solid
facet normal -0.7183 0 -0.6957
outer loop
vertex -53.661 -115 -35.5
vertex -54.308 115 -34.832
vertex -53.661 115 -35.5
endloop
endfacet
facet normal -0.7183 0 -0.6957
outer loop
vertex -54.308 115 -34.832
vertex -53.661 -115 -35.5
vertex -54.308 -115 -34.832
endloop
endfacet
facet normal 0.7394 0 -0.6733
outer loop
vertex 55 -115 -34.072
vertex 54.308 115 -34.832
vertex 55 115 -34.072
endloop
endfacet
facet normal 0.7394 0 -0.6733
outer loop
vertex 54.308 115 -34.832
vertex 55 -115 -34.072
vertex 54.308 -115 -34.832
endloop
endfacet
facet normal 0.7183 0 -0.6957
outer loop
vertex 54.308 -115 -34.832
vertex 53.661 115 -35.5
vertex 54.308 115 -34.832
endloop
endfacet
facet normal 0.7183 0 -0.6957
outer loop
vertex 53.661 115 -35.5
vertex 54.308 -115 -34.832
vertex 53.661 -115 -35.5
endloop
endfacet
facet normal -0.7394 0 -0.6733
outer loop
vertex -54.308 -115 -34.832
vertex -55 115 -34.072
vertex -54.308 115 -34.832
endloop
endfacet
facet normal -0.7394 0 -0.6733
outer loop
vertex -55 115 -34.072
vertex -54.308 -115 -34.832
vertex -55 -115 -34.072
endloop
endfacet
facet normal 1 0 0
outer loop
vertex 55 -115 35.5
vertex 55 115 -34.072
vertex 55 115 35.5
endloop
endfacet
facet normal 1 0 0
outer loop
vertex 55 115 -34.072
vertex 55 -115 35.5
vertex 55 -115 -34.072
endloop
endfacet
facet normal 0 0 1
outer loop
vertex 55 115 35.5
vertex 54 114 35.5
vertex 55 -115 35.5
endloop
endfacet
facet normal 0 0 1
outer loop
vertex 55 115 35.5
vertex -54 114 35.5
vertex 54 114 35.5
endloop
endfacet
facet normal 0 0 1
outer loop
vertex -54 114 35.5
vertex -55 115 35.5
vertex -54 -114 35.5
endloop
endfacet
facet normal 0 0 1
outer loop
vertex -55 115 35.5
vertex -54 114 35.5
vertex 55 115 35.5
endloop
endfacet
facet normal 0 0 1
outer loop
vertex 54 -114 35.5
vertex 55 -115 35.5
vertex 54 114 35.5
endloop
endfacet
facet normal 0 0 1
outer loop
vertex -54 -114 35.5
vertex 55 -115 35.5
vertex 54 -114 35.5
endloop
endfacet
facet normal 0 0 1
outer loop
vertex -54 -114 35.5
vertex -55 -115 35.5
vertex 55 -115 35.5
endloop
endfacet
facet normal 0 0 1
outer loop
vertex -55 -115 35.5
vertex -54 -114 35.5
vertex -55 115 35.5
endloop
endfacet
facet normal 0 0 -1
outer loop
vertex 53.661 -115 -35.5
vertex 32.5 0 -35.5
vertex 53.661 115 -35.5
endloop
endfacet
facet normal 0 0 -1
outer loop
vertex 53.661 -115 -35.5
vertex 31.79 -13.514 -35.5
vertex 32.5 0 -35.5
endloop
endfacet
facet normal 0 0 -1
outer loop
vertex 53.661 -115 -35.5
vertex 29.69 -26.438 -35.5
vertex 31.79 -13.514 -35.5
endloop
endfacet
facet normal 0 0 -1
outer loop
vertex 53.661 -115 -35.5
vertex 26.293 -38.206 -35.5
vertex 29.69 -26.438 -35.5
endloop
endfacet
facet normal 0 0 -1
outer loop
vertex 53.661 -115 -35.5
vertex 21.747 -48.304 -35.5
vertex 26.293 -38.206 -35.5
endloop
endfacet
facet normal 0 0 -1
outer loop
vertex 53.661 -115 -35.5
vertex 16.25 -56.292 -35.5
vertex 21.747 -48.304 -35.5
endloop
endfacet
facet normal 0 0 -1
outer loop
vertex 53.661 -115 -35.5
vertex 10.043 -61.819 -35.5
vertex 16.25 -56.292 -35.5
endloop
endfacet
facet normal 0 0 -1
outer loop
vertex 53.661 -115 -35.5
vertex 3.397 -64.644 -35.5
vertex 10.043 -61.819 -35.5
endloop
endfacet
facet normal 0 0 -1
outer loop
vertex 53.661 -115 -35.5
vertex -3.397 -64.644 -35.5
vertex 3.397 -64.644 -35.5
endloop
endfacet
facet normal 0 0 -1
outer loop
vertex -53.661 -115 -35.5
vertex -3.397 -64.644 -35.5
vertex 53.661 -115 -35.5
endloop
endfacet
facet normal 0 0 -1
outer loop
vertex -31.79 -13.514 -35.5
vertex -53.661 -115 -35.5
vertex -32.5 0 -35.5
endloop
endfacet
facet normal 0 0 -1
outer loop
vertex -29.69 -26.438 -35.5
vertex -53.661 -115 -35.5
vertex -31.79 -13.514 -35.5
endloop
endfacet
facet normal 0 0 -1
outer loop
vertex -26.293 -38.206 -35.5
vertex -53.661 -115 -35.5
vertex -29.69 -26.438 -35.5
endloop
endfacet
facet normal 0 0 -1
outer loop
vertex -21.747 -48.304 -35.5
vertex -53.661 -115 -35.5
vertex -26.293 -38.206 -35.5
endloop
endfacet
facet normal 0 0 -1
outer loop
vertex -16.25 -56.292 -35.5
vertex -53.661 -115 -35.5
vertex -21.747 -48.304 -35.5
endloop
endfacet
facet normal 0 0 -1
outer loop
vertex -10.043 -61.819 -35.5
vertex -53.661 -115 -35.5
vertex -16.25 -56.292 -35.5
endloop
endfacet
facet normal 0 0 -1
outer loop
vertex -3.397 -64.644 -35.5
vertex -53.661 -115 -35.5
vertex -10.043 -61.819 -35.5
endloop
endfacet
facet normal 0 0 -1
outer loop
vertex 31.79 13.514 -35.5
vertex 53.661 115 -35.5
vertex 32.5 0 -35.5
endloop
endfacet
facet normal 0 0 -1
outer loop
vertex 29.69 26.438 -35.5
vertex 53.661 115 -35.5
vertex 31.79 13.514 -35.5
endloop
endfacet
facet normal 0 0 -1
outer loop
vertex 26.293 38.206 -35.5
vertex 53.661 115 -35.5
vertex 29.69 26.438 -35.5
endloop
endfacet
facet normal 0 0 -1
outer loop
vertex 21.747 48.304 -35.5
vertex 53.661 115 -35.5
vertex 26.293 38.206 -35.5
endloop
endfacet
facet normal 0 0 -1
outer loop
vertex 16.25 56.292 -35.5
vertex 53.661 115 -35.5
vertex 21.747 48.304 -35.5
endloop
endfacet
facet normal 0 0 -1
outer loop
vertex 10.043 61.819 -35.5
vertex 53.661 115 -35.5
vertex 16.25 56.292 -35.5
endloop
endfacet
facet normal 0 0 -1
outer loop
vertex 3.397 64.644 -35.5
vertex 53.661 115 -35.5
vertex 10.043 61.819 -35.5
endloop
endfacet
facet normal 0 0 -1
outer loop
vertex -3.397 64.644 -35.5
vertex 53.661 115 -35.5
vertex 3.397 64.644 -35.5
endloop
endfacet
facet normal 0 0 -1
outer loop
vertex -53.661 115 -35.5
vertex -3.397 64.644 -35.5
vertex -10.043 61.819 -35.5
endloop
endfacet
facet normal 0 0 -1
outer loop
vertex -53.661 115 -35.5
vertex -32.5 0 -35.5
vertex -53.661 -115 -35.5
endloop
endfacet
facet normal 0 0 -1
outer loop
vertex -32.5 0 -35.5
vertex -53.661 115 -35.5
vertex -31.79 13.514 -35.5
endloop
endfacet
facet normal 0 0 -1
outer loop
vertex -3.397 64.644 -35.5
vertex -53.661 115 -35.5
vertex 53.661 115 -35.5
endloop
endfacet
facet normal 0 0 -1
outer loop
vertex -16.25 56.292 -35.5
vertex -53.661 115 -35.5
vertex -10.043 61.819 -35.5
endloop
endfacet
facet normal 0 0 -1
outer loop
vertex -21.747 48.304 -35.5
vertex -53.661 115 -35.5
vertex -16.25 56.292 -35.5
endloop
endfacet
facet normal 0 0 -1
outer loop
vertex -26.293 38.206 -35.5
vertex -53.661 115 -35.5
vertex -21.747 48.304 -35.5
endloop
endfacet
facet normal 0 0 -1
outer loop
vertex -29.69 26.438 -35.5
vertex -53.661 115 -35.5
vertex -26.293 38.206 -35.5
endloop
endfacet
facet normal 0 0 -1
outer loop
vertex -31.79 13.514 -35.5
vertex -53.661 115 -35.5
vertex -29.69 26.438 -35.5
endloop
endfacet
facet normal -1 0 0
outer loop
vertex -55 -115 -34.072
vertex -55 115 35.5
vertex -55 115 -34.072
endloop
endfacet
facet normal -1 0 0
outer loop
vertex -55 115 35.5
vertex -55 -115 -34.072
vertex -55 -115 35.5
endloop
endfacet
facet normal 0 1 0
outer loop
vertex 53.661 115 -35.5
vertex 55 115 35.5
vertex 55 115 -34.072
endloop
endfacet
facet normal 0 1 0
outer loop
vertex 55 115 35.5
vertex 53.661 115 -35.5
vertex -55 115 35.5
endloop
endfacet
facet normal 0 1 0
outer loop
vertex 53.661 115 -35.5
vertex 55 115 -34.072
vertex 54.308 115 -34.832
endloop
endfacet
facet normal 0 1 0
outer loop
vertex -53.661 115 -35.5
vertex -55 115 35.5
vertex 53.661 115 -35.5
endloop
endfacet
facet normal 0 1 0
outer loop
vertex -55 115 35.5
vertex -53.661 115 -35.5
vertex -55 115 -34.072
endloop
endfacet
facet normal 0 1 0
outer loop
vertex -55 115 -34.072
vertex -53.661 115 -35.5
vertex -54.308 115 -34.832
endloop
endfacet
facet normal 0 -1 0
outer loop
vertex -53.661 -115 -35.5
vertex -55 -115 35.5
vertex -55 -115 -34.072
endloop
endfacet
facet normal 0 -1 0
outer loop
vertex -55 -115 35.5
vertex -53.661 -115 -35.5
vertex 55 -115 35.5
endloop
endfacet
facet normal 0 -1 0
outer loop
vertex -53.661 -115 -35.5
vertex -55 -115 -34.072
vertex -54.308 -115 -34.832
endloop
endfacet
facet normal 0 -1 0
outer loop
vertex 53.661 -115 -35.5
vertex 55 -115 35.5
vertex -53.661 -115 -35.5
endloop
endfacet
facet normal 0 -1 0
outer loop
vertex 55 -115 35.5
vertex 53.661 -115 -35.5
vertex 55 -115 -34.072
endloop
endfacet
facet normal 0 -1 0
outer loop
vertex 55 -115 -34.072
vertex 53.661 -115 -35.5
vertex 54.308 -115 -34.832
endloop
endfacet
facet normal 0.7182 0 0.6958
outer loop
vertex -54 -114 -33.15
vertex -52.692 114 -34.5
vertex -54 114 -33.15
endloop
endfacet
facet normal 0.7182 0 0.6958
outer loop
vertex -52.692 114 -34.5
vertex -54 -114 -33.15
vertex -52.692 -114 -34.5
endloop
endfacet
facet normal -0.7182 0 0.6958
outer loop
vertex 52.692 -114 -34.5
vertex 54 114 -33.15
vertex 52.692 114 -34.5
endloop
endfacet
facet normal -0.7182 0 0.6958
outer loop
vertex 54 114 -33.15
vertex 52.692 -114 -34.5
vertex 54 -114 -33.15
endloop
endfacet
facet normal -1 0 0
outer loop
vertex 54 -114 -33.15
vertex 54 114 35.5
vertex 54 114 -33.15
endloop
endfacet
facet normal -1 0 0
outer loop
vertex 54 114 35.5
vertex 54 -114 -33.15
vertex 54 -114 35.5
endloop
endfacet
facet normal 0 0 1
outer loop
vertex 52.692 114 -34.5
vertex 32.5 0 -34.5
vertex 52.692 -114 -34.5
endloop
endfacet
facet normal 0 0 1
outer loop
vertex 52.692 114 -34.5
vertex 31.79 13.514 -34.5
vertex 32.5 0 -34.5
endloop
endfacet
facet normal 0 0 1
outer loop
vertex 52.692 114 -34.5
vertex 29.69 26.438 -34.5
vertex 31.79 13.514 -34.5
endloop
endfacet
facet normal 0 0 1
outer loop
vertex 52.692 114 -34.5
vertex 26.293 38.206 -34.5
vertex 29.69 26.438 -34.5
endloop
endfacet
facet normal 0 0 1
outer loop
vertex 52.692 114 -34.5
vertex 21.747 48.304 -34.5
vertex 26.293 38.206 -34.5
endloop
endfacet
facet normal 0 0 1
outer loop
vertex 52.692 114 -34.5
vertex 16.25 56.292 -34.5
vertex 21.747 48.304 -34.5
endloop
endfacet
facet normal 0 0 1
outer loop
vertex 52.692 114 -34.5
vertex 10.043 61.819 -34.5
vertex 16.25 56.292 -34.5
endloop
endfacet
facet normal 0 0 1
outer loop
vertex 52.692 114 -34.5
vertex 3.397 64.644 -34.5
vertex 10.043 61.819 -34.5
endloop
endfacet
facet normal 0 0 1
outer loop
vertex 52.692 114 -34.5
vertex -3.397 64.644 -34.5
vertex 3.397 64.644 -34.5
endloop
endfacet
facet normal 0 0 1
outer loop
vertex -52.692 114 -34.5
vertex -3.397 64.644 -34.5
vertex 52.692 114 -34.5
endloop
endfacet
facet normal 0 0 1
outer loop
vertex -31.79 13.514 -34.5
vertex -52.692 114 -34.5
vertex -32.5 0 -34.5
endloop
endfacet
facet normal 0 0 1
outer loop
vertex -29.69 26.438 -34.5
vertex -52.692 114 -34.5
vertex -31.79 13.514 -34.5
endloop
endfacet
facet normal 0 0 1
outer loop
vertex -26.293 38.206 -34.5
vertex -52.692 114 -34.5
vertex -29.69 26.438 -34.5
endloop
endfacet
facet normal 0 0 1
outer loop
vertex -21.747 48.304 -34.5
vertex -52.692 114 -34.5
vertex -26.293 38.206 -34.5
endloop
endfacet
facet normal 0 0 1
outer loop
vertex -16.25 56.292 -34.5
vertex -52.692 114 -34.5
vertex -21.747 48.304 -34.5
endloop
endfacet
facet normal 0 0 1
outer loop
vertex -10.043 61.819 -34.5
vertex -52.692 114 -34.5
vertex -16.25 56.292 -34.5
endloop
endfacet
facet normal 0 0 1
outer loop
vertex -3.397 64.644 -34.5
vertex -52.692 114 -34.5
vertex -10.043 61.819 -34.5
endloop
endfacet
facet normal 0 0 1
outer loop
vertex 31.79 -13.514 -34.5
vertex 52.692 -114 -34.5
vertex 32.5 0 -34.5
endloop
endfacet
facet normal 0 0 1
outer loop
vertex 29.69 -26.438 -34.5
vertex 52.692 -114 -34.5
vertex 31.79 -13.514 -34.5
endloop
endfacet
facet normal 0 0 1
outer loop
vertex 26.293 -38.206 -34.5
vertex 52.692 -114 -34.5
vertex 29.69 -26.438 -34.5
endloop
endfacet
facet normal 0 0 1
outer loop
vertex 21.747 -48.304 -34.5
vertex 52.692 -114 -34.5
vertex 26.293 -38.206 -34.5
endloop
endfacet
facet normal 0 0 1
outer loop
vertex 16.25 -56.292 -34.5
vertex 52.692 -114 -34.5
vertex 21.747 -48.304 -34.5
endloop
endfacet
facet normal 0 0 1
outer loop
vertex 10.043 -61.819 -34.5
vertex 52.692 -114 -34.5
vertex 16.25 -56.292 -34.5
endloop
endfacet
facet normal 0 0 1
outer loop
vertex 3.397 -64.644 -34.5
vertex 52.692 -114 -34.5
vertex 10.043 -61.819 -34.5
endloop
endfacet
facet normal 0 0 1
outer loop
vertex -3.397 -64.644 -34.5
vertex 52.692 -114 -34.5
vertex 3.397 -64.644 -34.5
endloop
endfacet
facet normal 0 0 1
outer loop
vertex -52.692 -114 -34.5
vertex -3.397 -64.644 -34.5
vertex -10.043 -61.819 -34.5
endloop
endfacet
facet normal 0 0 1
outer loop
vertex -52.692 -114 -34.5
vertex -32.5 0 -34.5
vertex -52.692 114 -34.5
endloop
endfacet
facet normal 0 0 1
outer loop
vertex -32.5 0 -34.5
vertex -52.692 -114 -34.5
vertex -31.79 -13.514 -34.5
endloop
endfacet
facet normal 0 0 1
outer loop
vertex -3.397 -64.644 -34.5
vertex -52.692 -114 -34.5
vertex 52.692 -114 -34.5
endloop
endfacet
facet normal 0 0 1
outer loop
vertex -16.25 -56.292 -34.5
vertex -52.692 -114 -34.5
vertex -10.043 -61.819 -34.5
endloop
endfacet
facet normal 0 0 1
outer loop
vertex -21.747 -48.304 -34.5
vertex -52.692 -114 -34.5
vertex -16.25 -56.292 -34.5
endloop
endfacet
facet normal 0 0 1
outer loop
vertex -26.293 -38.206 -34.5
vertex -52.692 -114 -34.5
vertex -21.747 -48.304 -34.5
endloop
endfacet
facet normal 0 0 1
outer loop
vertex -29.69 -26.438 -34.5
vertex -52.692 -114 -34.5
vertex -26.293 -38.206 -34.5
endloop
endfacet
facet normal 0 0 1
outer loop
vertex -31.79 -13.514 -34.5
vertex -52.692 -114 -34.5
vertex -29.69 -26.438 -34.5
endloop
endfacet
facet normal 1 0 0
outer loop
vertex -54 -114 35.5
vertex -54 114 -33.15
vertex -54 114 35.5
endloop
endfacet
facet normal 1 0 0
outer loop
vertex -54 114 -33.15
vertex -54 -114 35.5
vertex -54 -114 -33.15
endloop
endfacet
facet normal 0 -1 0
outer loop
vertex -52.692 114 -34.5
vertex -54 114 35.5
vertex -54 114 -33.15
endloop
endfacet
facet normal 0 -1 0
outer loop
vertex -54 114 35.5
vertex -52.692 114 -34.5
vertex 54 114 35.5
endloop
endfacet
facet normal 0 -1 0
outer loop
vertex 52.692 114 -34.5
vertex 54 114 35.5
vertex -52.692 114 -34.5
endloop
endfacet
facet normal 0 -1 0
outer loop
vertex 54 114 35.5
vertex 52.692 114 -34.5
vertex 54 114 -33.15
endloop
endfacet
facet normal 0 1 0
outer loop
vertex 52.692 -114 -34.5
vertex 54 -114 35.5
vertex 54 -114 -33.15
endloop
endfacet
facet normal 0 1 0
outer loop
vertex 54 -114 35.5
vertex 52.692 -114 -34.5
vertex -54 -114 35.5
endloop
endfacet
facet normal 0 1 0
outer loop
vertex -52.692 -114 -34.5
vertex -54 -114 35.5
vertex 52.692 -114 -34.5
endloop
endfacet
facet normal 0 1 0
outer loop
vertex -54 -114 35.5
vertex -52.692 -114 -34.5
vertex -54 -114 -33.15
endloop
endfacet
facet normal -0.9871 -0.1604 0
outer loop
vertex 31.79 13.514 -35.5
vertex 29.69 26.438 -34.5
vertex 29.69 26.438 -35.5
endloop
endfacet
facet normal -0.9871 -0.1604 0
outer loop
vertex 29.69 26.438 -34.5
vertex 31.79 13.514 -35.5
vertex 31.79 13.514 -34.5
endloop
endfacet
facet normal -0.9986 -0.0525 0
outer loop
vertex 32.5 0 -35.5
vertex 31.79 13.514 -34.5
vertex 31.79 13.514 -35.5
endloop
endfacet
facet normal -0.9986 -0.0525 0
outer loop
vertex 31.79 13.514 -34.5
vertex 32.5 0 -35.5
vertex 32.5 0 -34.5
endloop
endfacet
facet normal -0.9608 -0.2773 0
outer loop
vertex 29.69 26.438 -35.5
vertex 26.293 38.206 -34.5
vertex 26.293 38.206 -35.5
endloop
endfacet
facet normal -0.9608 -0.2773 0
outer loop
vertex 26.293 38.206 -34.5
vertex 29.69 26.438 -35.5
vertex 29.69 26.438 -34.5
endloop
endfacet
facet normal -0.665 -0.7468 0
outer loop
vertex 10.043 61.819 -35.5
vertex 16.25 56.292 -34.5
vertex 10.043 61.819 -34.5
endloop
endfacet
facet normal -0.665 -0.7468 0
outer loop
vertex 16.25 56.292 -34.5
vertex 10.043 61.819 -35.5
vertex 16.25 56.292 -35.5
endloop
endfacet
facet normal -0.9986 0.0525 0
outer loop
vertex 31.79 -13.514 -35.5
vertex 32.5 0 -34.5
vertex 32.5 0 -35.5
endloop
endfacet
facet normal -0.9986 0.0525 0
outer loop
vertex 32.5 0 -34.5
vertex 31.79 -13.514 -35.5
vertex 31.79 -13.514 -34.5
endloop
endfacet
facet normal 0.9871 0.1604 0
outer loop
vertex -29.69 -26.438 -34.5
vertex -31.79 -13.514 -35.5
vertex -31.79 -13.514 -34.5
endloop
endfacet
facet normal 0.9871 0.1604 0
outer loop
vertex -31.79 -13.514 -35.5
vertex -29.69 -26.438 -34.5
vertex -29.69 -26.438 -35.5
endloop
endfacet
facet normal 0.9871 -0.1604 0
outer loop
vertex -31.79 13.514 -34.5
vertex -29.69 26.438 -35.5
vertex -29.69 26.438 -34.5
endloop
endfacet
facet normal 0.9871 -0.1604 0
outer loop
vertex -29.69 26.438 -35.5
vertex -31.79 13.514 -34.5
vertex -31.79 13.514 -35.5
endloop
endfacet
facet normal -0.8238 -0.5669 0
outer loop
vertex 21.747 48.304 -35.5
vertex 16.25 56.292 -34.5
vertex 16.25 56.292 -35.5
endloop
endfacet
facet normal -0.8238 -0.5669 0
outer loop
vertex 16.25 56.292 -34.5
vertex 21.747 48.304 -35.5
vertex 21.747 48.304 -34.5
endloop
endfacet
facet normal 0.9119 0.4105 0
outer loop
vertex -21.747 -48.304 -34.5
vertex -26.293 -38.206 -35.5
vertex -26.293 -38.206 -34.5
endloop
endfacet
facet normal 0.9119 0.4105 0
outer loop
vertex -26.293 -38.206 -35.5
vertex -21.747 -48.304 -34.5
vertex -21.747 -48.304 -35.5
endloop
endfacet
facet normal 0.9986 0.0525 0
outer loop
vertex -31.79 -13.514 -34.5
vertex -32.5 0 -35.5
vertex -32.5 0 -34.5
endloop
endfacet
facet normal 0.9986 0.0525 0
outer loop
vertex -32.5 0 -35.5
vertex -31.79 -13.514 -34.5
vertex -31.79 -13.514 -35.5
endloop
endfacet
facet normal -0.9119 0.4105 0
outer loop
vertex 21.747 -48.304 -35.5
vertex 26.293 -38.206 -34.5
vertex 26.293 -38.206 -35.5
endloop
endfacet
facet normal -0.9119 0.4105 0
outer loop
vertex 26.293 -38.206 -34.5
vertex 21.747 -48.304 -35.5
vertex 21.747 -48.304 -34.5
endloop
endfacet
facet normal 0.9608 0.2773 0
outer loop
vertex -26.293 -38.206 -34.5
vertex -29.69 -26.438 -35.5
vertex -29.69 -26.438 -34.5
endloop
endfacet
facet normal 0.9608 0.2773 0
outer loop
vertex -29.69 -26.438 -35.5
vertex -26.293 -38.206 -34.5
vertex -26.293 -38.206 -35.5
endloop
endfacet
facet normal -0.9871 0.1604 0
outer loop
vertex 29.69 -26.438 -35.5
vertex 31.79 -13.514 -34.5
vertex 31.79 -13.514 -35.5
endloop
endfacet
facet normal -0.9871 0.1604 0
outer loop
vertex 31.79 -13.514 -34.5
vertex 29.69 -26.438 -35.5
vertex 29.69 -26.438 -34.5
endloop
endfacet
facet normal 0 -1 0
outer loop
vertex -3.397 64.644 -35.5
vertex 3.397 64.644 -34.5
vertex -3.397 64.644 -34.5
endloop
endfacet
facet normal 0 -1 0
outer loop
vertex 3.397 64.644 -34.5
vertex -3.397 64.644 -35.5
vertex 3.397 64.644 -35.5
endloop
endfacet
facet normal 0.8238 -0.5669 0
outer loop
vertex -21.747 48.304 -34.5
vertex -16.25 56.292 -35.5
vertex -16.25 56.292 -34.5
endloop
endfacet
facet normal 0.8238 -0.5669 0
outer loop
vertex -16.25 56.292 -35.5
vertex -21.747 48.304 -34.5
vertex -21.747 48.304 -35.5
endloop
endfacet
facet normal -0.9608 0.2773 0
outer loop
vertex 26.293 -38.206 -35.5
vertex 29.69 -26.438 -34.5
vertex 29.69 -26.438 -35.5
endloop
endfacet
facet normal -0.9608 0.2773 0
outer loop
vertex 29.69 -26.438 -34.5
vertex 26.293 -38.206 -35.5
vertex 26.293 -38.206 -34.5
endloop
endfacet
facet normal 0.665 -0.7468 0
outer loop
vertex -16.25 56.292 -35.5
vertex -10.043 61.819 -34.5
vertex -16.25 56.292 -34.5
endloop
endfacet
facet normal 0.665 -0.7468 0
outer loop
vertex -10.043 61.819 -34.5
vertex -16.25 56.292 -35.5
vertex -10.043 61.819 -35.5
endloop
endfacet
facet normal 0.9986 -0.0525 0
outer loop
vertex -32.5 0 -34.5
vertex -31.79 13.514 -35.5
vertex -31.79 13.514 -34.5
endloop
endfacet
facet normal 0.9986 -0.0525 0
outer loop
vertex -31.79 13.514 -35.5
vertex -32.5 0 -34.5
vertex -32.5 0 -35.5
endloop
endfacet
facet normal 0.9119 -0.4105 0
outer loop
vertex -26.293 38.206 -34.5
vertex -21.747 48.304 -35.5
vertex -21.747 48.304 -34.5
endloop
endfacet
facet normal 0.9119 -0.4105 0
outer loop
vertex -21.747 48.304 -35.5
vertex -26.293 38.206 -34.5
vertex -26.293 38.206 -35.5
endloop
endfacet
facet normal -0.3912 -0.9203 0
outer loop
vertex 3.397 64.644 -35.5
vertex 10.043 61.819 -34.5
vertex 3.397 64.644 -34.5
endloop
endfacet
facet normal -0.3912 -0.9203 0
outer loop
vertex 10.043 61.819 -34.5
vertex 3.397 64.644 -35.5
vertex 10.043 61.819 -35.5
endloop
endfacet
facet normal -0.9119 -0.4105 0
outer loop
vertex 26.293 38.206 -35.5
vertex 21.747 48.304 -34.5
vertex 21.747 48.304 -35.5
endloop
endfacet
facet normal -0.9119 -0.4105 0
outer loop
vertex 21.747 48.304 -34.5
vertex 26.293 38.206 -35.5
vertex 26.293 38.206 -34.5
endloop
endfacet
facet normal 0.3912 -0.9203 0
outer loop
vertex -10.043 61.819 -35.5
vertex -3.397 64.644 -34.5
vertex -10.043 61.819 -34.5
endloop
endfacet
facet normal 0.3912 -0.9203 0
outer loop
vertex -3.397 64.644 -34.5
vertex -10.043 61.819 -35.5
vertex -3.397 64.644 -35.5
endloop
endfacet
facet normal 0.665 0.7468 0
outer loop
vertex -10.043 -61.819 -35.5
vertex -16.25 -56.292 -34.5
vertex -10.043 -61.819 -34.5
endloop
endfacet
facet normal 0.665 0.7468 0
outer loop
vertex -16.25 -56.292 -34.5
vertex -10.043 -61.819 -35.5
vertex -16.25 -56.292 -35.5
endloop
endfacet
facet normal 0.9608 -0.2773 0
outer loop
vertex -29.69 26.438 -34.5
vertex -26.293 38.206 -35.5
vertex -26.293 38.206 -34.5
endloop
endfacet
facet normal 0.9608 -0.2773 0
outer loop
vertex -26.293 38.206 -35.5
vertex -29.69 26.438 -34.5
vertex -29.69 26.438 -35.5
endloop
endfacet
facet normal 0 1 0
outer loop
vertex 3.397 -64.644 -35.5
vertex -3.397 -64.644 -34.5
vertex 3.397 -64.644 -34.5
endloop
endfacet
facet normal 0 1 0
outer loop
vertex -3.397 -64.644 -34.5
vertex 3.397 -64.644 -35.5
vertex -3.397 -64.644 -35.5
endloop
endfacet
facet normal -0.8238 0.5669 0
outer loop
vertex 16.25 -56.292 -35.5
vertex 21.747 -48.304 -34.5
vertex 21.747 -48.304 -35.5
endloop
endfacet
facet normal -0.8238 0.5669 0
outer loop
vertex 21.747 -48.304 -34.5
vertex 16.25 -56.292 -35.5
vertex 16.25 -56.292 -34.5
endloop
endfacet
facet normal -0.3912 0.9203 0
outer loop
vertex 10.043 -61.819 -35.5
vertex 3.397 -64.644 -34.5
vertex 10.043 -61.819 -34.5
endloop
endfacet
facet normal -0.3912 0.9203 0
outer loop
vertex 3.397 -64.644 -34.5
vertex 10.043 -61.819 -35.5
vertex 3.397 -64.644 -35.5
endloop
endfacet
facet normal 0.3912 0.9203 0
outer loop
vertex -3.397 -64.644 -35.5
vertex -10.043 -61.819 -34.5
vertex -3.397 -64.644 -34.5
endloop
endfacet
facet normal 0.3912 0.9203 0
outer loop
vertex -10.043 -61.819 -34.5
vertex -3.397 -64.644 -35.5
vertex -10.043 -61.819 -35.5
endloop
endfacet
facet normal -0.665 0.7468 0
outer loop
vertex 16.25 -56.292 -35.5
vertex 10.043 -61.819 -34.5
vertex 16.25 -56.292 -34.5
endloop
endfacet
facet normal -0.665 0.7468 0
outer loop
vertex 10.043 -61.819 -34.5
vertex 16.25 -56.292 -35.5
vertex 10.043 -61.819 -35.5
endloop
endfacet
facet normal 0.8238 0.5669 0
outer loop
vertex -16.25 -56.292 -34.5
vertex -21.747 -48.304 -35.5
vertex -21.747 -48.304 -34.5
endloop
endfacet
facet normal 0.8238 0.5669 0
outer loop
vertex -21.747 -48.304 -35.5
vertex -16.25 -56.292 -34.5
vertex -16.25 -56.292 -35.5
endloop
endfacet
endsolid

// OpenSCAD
height=71;
depth=110;
len=230;
thick=2;
cw=20;
module smooth_box() {
  cutout_d=65;
  cutout_thick=20;
  difference() {
    box(thick=0);
    scale([1, 2, 1])
      translate([0, 0, -cutout_thick*2])
        cylinder(h=cutout_thick, d=cutout_d);
    box(thick=thick);
  }
}

module box(thick) {
  cutout_d=65;
  cutout_thick=20;
  translate([0, 0, thick]) {
    difference() {
      cube([depth-thick, len-thick, height+thick], center=true);
      y_cylinder();
    }
  }
}

module y_cylinder() {
  cd=155;
  cyl_thick=6;
  difference() {
    translate([0, 0, -height/2+cd/3])
      rotate([90, 90, 0])
        cylinder(len+2, d=cd, center=true, $fn=200);
    translate([0, 0, -height/2+cd/3])
      rotate([90, 90, 0])
        cylinder(len+2, d=cd-cyl_thick, center=true, $fn=200);
  }
}

smooth_box();
